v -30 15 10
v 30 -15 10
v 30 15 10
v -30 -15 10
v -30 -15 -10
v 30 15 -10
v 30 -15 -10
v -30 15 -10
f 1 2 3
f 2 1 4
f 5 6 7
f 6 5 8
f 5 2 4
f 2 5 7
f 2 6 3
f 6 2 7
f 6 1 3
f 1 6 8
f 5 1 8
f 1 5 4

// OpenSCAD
// Define the dimensions of the rectangular block
length = 60;  // Length of the block
width = 30;   // Width of the block
height = 20;  // Height of the block

// Create the rectangular block
module rectangular_block() {
    color("white") {
        cube([length, width, height], center = true);
    }
}

// Call the module to render the block
rectangular_block();
